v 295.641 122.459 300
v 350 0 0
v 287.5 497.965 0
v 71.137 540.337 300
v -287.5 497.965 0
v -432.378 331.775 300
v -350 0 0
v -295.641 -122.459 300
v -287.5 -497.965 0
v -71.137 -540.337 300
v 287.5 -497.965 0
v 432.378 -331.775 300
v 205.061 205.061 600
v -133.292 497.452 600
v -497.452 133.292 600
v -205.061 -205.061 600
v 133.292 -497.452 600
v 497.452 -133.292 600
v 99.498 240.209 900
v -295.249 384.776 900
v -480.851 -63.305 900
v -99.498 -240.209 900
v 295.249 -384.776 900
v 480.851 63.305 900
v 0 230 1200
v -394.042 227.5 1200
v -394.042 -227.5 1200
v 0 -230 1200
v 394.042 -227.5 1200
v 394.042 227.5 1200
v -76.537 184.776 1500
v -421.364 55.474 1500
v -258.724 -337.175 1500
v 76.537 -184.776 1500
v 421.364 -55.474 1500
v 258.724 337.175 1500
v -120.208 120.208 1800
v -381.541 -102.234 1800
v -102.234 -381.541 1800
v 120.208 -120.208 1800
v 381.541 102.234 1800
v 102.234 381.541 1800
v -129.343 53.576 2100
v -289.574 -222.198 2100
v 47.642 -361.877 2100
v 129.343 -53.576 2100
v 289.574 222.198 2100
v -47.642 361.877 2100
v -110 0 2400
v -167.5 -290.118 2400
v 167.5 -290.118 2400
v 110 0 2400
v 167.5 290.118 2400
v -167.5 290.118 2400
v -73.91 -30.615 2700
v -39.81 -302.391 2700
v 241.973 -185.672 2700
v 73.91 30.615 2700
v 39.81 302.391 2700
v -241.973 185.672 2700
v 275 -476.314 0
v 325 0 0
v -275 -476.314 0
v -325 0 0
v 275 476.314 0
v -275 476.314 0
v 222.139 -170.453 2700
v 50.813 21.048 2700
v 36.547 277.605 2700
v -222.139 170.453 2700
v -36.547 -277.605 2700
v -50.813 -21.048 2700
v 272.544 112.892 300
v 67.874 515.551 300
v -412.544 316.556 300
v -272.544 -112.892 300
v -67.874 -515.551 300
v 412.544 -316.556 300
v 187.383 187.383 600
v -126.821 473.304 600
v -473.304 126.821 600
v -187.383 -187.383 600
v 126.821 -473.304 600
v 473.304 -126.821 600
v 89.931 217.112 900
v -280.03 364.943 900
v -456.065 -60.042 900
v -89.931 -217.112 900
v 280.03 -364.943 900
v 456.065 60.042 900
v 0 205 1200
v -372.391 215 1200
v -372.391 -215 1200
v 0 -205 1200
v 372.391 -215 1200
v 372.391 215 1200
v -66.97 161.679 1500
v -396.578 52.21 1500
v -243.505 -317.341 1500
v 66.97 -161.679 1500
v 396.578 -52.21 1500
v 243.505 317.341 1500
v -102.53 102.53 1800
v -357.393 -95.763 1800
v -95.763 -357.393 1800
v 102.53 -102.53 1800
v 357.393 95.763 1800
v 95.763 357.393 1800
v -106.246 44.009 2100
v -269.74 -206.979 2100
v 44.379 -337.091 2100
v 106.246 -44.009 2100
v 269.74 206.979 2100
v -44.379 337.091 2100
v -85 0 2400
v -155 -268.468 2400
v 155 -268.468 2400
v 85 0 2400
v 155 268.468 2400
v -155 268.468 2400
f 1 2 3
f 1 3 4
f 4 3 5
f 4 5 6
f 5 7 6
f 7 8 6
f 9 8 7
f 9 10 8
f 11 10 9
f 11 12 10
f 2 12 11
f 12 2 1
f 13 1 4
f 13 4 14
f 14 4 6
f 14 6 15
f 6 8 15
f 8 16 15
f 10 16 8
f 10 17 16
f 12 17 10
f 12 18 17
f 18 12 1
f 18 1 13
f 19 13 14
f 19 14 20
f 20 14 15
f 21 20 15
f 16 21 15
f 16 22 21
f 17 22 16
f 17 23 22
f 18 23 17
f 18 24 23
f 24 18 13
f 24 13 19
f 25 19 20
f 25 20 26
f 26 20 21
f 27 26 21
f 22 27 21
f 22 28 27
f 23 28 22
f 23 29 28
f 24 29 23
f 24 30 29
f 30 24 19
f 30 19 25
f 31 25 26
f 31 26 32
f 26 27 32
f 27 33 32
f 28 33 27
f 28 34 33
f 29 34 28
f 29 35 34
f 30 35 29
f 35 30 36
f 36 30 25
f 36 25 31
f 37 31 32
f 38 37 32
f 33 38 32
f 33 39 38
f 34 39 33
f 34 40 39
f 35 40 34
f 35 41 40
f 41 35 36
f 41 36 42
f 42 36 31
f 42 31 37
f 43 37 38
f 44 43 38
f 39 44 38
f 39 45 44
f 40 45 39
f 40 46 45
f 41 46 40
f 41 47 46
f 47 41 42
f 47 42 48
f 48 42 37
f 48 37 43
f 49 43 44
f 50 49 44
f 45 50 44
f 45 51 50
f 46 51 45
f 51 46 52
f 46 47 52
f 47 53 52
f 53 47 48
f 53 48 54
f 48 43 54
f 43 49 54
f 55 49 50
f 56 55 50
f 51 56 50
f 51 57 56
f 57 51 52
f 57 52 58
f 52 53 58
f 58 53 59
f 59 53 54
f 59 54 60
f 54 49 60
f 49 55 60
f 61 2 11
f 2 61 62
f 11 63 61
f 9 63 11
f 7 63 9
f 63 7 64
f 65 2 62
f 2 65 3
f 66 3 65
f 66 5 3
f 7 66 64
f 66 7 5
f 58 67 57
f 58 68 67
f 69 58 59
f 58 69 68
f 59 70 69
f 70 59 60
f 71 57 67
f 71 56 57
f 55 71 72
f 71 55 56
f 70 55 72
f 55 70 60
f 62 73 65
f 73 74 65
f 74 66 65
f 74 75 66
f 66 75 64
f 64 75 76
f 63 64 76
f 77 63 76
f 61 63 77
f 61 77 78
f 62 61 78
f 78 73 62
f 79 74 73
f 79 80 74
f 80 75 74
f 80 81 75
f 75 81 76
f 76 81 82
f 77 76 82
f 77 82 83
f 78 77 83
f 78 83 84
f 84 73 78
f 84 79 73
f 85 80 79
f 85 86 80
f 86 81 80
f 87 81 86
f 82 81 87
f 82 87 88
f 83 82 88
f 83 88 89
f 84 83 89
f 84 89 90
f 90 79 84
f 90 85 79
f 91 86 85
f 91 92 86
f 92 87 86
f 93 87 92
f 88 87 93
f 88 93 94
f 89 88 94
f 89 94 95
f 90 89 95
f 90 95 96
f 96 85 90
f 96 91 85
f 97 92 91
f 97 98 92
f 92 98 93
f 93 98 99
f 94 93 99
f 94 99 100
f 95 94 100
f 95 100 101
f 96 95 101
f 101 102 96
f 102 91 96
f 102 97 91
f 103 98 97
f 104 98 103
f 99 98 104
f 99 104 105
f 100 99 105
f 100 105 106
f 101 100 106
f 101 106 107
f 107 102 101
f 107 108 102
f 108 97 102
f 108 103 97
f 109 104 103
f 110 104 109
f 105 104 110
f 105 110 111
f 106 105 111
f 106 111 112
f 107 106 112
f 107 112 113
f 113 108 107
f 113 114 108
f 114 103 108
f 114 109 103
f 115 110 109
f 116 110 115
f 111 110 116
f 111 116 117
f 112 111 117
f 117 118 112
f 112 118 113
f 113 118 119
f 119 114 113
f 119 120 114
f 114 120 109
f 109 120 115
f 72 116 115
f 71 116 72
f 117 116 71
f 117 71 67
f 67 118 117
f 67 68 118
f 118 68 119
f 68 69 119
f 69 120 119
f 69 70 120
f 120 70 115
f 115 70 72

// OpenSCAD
difference() {
	polyhedron(faces = [[0, 6, 1], [1, 6, 7], [1, 7, 2], [2, 7, 8], [2, 8, 3], [3, 8, 9], [3, 9, 4], [4, 9, 10], [4, 10, 5], [5, 10, 11], [5, 11, 0], [0, 11, 6], [6, 12, 7], [7, 12, 13], [7, 13, 8], [8, 13, 14], [8, 14, 9], [9, 14, 15], [9, 15, 10], [10, 15, 16], [10, 16, 11], [11, 16, 17], [11, 17, 6], [6, 17, 12], [12, 18, 13], [13, 18, 19], [13, 19, 14], [14, 19, 20], [14, 20, 15], [15, 20, 21], [15, 21, 16], [16, 21, 22], [16, 22, 17], [17, 22, 23], [17, 23, 12], [12, 23, 18], [18, 24, 19], [19, 24, 25], [19, 25, 20], [20, 25, 26], [20, 26, 21], [21, 26, 27], [21, 27, 22], [22, 27, 28], [22, 28, 23], [23, 28, 29], [23, 29, 18], [18, 29, 24], [24, 30, 25], [25, 30, 31], [25, 31, 26], [26, 31, 32], [26, 32, 27], [27, 32, 33], [27, 33, 28], [28, 33, 34], [28, 34, 29], [29, 34, 35], [29, 35, 24], [24, 35, 30], [30, 36, 31], [31, 36, 37], [31, 37, 32], [32, 37, 38], [32, 38, 33], [33, 38, 39], [33, 39, 34], [34, 39, 40], [34, 40, 35], [35, 40, 41], [35, 41, 30], [30, 41, 36], [36, 42, 37], [37, 42, 43], [37, 43, 38], [38, 43, 44], [38, 44, 39], [39, 44, 45], [39, 45, 40], [40, 45, 46], [40, 46, 41], [41, 46, 47], [41, 47, 36], [36, 47, 42], [42, 48, 43], [43, 48, 49], [43, 49, 44], [44, 49, 50], [44, 50, 45], [45, 50, 51], [45, 51, 46], [46, 51, 52], [46, 52, 47], [47, 52, 53], [47, 53, 42], [42, 53, 48], [48, 54, 49], [49, 54, 55], [49, 55, 50], [50, 55, 56], [50, 56, 51], [51, 56, 57], [51, 57, 52], [52, 57, 58], [52, 58, 53], [53, 58, 59], [53, 59, 48], [48, 59, 54], [1, 60, 0], [54, 61, 55], [2, 60, 1], [55, 61, 56], [3, 60, 2], [56, 61, 57], [4, 60, 3], [57, 61, 58], [5, 60, 4], [58, 61, 59], [0, 60, 5], [59, 61, 54]], points = [[350.0000000000, 0.0000000000, 0.0000000000], [287.5000000000, 497.9646071761, 0.0000000000], [-287.5000000000, 497.9646071761, 0.0000000000], [-350.0000000000, 0.0000000000, 0.0000000000], [-287.5000000000, -497.9646071761, 0.0000000000], [287.5000000000, -497.9646071761, 0.0000000000], [295.6414504036, 122.4586983568, 300.0000000000], [71.1367747599, 540.3374494487, 300.0000000000], [-432.3775704587, 331.7749788098, 300.0000000000], [-295.6414504036, -122.4586983568, 300.0000000000], [-71.1367747599, -540.3374494487, 300.0000000000], [432.3775704587, -331.7749788098, 300.0000000000], [205.0609665441, 205.0609665441, 600.0000000000], [-133.2918082278, 497.4518005389, 600.0000000000], [-497.4518005389, 133.2918082278, 600.0000000000], [-205.0609665441, -205.0609665441, 600.0000000000], [133.2918082278, -497.4518005389, 600.0000000000], [497.4518005389, -133.2918082278, 600.0000000000], [99.4976924149, 240.2086784529, 900.0000000000], [-295.2492930692, 384.7763700412, 900.0000000000], [-480.8507577663, -63.3052032267, 900.0000000000], [-99.4976924149, -240.2086784529, 900.0000000000], [295.2492930692, -384.7763700412, 900.0000000000], [480.8507577663, 63.3052032267, 900.0000000000], [0.0000000000, 230.0000000000, 1200.0000000000], [-394.0415587219, 227.5000000000, 1200.0000000000], [-394.0415587219, -227.5000000000, 1200.0000000000], [-0.0000000000, -230.0000000000, 1200.0000000000], [394.0415587219, -227.5000000000, 1200.0000000000], [394.0415587219, 227.5000000000, 1200.0000000000], [-76.5366864730, 184.7759065023, 1500.0000000000], [-421.3640660839, 55.4736316935, 1500.0000000000], [-258.7236073287, -337.1751696238, 1500.0000000000], [76.5366864730, -184.7759065023, 1500.0000000000], [421.3640660839, -55.4736316935, 1500.0000000000], [258.7236073287, 337.1751696238, 1500.0000000000], [-120.2081528017, 120.2081528017, 1800.0000000000], [-381.5407013842, -102.2335228155, 1800.0000000000], [-102.2335228155, -381.5407013842, 1800.0000000000], [120.2081528017, -120.2081528017, 1800.0000000000], [381.5407013842, 102.2335228155, 1800.0000000000], [102.2335228155, 381.5407013842, 1800.0000000000], [-129.3431345516, 53.5756805311, 2100.0000000000], [-289.5739692063, -222.1979215882, 2100.0000000000], [47.6420601603, -361.8773744014, 2100.0000000000], [129.3431345516, -53.5756805311, 2100.0000000000], [289.5739692063, 222.1979215882, 2100.0000000000], [-47.6420601603, 361.8773744014, 2100.0000000000], [-110.0000000000, 0.0000000000, 2400.0000000000], [-167.5000000000, -290.1185102678, 2400.0000000000], [167.5000000000, -290.1185102678, 2400.0000000000], [110.0000000000, -0.0000000000, 2400.0000000000], [167.5000000000, 290.1185102678, 2400.0000000000], [-167.5000000000, 290.1185102678, 2400.0000000000], [-73.9103626009, -30.6146745892, 2700.0000000000], [-39.8104886271, -302.3906827190, 2700.0000000000], [241.9727687888, -185.6722358477, 2700.0000000000], [73.9103626009, 30.6146745892, 2700.0000000000], [39.8104886271, 302.3906827190, 2700.0000000000], [-241.9727687888, 185.6722358477, 2700.0000000000], [-0.0000000000, -0.0000000000, 0.0000000000], [0.0000000000, 0.0000000000, 2700.0000000000]]);
	polyhedron(faces = [[0, 6, 1], [1, 6, 7], [1, 7, 2], [2, 7, 8], [2, 8, 3], [3, 8, 9], [3, 9, 4], [4, 9, 10], [4, 10, 5], [5, 10, 11], [5, 11, 0], [0, 11, 6], [6, 12, 7], [7, 12, 13], [7, 13, 8], [8, 13, 14], [8, 14, 9], [9, 14, 15], [9, 15, 10], [10, 15, 16], [10, 16, 11], [11, 16, 17], [11, 17, 6], [6, 17, 12], [12, 18, 13], [13, 18, 19], [13, 19, 14], [14, 19, 20], [14, 20, 15], [15, 20, 21], [15, 21, 16], [16, 21, 22], [16, 22, 17], [17, 22, 23], [17, 23, 12], [12, 23, 18], [18, 24, 19], [19, 24, 25], [19, 25, 20], [20, 25, 26], [20, 26, 21], [21, 26, 27], [21, 27, 22], [22, 27, 28], [22, 28, 23], [23, 28, 29], [23, 29, 18], [18, 29, 24], [24, 30, 25], [25, 30, 31], [25, 31, 26], [26, 31, 32], [26, 32, 27], [27, 32, 33], [27, 33, 28], [28, 33, 34], [28, 34, 29], [29, 34, 35], [29, 35, 24], [24, 35, 30], [30, 36, 31], [31, 36, 37], [31, 37, 32], [32, 37, 38], [32, 38, 33], [33, 38, 39], [33, 39, 34], [34, 39, 40], [34, 40, 35], [35, 40, 41], [35, 41, 30], [30, 41, 36], [36, 42, 37], [37, 42, 43], [37, 43, 38], [38, 43, 44], [38, 44, 39], [39, 44, 45], [39, 45, 40], [40, 45, 46], [40, 46, 41], [41, 46, 47], [41, 47, 36], [36, 47, 42], [42, 48, 43], [43, 48, 49], [43, 49, 44], [44, 49, 50], [44, 50, 45], [45, 50, 51], [45, 51, 46], [46, 51, 52], [46, 52, 47], [47, 52, 53], [47, 53, 42], [42, 53, 48], [48, 54, 49], [49, 54, 55], [49, 55, 50], [50, 55, 56], [50, 56, 51], [51, 56, 57], [51, 57, 52], [52, 57, 58], [52, 58, 53], [53, 58, 59], [53, 59, 48], [48, 59, 54], [1, 60, 0], [54, 61, 55], [2, 60, 1], [55, 61, 56], [3, 60, 2], [56, 61, 57], [4, 60, 3], [57, 61, 58], [5, 60, 4], [58, 61, 59], [0, 60, 5], [59, 61, 54]], points = [[325.0000000000, 0.0000000000, 0.0000000000], [275.0000000000, 476.3139720814, 0.0000000000], [-275.0000000000, 476.3139720814, 0.0000000000], [-325.0000000000, 0.0000000000, 0.0000000000], [-275.0000000000, -476.3139720814, 0.0000000000], [275.0000000000, -476.3139720814, 0.0000000000], [272.5444620908, 112.8916125477, 300.0000000000], [67.8736199544, 515.5513279144, 300.0000000000], [-412.5437369514, 316.5559430845, 300.0000000000], [-272.5444620908, -112.8916125477, 300.0000000000], [-67.8736199544, -515.5513279144, 300.0000000000], [412.5437369514, -316.5559430845, 300.0000000000], [187.3832970144, 187.3832970144, 600.0000000000], [-126.8213321002, 473.3036548816, 600.0000000000], [-473.3036548816, 126.8213321002, 600.0000000000], [-187.3832970144, -187.3832970144, 600.0000000000], [126.8213321002, -473.3036548816, 600.0000000000], [473.3036548816, -126.8213321002, 600.0000000000], [89.9306066058, 217.1116901402, 900.0000000000], [-280.0302573440, 364.9425365340, 900.0000000000], [-456.0646362320, -60.0420484212, 900.0000000000], [-89.9306066058, -217.1116901402, 900.0000000000], [280.0302573440, -364.9425365340, 900.0000000000], [456.0646362320, 60.0420484212, 900.0000000000], [0.0000000000, 205.0000000000, 1200.0000000000], [-372.3909236273, 215.0000000000, 1200.0000000000], [-372.3909236273, -215.0000000000, 1200.0000000000], [-0.0000000000, -205.0000000000, 1200.0000000000], [372.3909236273, -215.0000000000, 1200.0000000000], [372.3909236273, 215.0000000000, 1200.0000000000], [-66.9696006639, 161.6789181895, 1500.0000000000], [-396.5779445495, 52.2104768880, 1500.0000000000], [-243.5045716035, -317.3413361165, 1500.0000000000], [66.9696006639, -161.6789181895, 1500.0000000000], [396.5779445495, -52.2104768880, 1500.0000000000], [243.5045716035, 317.3413361165, 1500.0000000000], [-102.5304832720, 102.5304832720, 1800.0000000000], [-357.3925557270, -95.7630466879, 1800.0000000000], [-95.7630466879, -357.3925557270, 1800.0000000000], [102.5304832720, -102.5304832720, 1800.0000000000], [357.3925557270, 95.7630466879, 1800.0000000000], [95.7630466879, 357.3925557270, 1800.0000000000], [-106.2461462388, 44.0085947220, 2100.0000000000], [-269.7401356990, -206.9788858630, 2100.0000000000], [44.3789053548, -337.0912528671, 2100.0000000000], [106.2461462388, -44.0085947220, 2100.0000000000], [269.7401356990, 206.9788858630, 2100.0000000000], [-44.3789053548, 337.0912528671, 2100.0000000000], [-85.0000000000, 0.0000000000, 2400.0000000000], [-155.0000000000, -268.4678751732, 2400.0000000000], [155.0000000000, -268.4678751732, 2400.0000000000], [85.0000000000, -0.0000000000, 2400.0000000000], [155.0000000000, 268.4678751732, 2400.0000000000], [-155.0000000000, 268.4678751732, 2400.0000000000], [-50.8133742881, -21.0475887801, 2700.0000000000], [-36.5473338216, -277.6045611847, 2700.0000000000], [222.1389352815, -170.4532001224, 2700.0000000000], [50.8133742881, 21.0475887801, 2700.0000000000], [36.5473338216, 277.6045611847, 2700.0000000000], [-222.1389352815, 170.4532001224, 2700.0000000000], [-0.0000000000, -0.0000000000, 0.0000000000], [0.0000000000, -0.0000000000, 2700.0000000000]]);
}
